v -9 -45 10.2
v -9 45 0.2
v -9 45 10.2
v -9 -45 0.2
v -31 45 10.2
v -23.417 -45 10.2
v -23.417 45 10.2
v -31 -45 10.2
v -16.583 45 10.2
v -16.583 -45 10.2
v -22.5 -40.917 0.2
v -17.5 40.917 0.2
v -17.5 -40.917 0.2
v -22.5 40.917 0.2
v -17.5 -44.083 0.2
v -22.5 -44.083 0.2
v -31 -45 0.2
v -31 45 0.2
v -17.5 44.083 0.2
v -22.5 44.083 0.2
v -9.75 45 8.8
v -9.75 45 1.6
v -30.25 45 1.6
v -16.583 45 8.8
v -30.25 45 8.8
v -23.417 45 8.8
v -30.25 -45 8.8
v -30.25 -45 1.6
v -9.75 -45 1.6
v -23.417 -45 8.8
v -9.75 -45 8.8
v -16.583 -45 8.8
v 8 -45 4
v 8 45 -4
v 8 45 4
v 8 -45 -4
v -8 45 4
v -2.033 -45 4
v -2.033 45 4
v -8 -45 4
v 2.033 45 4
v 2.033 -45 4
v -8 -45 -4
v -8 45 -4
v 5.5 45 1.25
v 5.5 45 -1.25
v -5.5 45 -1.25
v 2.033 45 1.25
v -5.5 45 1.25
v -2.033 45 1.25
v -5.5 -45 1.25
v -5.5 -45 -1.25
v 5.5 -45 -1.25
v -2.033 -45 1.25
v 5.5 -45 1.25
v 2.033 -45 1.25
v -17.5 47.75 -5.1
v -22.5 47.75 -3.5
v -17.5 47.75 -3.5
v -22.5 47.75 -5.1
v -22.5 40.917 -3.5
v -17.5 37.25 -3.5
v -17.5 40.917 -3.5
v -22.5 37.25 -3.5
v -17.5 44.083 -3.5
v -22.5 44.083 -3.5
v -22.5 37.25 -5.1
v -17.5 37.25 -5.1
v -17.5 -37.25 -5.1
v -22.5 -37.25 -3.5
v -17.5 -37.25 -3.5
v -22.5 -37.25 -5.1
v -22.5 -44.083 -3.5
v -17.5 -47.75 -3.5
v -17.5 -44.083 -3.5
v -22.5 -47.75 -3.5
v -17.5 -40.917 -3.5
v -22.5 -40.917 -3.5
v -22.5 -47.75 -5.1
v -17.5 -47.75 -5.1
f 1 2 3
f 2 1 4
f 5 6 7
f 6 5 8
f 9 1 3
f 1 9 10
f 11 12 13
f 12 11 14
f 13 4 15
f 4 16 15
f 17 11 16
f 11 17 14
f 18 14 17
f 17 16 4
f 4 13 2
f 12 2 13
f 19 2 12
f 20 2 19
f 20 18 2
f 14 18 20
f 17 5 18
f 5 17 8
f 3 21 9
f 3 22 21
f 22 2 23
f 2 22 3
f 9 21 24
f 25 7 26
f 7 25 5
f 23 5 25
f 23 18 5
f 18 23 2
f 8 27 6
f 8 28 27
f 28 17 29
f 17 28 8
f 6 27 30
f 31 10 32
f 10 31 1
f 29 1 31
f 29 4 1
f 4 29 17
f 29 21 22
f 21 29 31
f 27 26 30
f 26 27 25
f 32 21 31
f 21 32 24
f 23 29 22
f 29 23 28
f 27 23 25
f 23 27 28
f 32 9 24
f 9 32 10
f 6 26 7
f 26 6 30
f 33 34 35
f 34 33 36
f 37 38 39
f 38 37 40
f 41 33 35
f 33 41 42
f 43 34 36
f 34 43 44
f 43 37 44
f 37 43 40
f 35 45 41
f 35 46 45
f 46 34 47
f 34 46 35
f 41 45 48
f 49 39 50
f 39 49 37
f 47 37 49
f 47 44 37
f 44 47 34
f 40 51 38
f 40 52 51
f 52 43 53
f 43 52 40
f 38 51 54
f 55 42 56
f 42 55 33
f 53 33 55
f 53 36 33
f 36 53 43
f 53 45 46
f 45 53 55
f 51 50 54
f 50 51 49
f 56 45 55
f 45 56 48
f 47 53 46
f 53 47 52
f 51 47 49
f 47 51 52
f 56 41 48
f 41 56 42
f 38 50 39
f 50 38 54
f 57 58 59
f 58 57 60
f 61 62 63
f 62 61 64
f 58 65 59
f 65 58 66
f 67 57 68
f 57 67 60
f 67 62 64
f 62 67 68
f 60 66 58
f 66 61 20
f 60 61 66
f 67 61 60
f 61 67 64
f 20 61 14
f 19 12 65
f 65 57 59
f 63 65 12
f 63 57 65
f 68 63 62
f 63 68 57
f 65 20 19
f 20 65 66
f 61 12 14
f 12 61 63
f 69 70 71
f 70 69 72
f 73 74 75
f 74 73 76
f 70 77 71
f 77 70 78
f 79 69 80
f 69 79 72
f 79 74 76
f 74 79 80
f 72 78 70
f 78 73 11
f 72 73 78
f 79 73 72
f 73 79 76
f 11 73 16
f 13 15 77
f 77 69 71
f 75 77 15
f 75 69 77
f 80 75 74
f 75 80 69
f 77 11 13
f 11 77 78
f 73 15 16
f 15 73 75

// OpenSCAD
rail_length = 90;
rail_distance = 90;

bottomrail_width = 11;
bottomrail_width_actual = 16;
bottomrail_height = 2.5;
bottomrail_height_actual = 8;

toprail_width = 20.5;
toprail_height = 7.2;
toprail_height_actual = 10;
toprail_width_actual = 22;

translate([0, 0, 5.7])
translate([-20, 0, -0.5])
difference() {
    cube(size = [toprail_width_actual, rail_length, toprail_height_actual], center = true);

    cube(size = [toprail_width, rail_length, toprail_height], center = true);
    
    translate([0, 0, 3]) 
    cube(size = [toprail_width / 3, rail_length, toprail_height + 2], center = true);
}

difference() {
    cube(size = [bottomrail_width_actual, rail_length, bottomrail_height_actual], center = true);

    cube(size = [bottomrail_width, rail_length, bottomrail_height], center = true);
    
    translate([0, 0, 3]) 
    cube(size = [(bottomrail_width / 3) + 0.4, rail_length, bottomrail_height + 2], center = true);
}

translate([0, 0, 5.7])
translate([-20, 42.5, -10])
rotate([0, 0, 90]) 
union() {
    cube(size = [bottomrail_width - 0.5, 5, bottomrail_height - 0.9 ], center = true);
    
    translate([0, 0, 2.6]) 
    cube(size = [(bottomrail_width / 3) - 0.5, 5, bottomrail_height  + 3 - 0.7], center = true);
}

translate([0, 0, 5.7])
translate([-20, -42.5, -10])
rotate([0, 0, 90]) 
union() {
    cube(size = [bottomrail_width - 0.5, 5, bottomrail_height - 0.9], center = true);
    
    translate([0, 0, 2.6]) 
    cube(size = [(bottomrail_width / 3) - 0.5, 5, bottomrail_height  + 3 - 0.7], center = true);
}
